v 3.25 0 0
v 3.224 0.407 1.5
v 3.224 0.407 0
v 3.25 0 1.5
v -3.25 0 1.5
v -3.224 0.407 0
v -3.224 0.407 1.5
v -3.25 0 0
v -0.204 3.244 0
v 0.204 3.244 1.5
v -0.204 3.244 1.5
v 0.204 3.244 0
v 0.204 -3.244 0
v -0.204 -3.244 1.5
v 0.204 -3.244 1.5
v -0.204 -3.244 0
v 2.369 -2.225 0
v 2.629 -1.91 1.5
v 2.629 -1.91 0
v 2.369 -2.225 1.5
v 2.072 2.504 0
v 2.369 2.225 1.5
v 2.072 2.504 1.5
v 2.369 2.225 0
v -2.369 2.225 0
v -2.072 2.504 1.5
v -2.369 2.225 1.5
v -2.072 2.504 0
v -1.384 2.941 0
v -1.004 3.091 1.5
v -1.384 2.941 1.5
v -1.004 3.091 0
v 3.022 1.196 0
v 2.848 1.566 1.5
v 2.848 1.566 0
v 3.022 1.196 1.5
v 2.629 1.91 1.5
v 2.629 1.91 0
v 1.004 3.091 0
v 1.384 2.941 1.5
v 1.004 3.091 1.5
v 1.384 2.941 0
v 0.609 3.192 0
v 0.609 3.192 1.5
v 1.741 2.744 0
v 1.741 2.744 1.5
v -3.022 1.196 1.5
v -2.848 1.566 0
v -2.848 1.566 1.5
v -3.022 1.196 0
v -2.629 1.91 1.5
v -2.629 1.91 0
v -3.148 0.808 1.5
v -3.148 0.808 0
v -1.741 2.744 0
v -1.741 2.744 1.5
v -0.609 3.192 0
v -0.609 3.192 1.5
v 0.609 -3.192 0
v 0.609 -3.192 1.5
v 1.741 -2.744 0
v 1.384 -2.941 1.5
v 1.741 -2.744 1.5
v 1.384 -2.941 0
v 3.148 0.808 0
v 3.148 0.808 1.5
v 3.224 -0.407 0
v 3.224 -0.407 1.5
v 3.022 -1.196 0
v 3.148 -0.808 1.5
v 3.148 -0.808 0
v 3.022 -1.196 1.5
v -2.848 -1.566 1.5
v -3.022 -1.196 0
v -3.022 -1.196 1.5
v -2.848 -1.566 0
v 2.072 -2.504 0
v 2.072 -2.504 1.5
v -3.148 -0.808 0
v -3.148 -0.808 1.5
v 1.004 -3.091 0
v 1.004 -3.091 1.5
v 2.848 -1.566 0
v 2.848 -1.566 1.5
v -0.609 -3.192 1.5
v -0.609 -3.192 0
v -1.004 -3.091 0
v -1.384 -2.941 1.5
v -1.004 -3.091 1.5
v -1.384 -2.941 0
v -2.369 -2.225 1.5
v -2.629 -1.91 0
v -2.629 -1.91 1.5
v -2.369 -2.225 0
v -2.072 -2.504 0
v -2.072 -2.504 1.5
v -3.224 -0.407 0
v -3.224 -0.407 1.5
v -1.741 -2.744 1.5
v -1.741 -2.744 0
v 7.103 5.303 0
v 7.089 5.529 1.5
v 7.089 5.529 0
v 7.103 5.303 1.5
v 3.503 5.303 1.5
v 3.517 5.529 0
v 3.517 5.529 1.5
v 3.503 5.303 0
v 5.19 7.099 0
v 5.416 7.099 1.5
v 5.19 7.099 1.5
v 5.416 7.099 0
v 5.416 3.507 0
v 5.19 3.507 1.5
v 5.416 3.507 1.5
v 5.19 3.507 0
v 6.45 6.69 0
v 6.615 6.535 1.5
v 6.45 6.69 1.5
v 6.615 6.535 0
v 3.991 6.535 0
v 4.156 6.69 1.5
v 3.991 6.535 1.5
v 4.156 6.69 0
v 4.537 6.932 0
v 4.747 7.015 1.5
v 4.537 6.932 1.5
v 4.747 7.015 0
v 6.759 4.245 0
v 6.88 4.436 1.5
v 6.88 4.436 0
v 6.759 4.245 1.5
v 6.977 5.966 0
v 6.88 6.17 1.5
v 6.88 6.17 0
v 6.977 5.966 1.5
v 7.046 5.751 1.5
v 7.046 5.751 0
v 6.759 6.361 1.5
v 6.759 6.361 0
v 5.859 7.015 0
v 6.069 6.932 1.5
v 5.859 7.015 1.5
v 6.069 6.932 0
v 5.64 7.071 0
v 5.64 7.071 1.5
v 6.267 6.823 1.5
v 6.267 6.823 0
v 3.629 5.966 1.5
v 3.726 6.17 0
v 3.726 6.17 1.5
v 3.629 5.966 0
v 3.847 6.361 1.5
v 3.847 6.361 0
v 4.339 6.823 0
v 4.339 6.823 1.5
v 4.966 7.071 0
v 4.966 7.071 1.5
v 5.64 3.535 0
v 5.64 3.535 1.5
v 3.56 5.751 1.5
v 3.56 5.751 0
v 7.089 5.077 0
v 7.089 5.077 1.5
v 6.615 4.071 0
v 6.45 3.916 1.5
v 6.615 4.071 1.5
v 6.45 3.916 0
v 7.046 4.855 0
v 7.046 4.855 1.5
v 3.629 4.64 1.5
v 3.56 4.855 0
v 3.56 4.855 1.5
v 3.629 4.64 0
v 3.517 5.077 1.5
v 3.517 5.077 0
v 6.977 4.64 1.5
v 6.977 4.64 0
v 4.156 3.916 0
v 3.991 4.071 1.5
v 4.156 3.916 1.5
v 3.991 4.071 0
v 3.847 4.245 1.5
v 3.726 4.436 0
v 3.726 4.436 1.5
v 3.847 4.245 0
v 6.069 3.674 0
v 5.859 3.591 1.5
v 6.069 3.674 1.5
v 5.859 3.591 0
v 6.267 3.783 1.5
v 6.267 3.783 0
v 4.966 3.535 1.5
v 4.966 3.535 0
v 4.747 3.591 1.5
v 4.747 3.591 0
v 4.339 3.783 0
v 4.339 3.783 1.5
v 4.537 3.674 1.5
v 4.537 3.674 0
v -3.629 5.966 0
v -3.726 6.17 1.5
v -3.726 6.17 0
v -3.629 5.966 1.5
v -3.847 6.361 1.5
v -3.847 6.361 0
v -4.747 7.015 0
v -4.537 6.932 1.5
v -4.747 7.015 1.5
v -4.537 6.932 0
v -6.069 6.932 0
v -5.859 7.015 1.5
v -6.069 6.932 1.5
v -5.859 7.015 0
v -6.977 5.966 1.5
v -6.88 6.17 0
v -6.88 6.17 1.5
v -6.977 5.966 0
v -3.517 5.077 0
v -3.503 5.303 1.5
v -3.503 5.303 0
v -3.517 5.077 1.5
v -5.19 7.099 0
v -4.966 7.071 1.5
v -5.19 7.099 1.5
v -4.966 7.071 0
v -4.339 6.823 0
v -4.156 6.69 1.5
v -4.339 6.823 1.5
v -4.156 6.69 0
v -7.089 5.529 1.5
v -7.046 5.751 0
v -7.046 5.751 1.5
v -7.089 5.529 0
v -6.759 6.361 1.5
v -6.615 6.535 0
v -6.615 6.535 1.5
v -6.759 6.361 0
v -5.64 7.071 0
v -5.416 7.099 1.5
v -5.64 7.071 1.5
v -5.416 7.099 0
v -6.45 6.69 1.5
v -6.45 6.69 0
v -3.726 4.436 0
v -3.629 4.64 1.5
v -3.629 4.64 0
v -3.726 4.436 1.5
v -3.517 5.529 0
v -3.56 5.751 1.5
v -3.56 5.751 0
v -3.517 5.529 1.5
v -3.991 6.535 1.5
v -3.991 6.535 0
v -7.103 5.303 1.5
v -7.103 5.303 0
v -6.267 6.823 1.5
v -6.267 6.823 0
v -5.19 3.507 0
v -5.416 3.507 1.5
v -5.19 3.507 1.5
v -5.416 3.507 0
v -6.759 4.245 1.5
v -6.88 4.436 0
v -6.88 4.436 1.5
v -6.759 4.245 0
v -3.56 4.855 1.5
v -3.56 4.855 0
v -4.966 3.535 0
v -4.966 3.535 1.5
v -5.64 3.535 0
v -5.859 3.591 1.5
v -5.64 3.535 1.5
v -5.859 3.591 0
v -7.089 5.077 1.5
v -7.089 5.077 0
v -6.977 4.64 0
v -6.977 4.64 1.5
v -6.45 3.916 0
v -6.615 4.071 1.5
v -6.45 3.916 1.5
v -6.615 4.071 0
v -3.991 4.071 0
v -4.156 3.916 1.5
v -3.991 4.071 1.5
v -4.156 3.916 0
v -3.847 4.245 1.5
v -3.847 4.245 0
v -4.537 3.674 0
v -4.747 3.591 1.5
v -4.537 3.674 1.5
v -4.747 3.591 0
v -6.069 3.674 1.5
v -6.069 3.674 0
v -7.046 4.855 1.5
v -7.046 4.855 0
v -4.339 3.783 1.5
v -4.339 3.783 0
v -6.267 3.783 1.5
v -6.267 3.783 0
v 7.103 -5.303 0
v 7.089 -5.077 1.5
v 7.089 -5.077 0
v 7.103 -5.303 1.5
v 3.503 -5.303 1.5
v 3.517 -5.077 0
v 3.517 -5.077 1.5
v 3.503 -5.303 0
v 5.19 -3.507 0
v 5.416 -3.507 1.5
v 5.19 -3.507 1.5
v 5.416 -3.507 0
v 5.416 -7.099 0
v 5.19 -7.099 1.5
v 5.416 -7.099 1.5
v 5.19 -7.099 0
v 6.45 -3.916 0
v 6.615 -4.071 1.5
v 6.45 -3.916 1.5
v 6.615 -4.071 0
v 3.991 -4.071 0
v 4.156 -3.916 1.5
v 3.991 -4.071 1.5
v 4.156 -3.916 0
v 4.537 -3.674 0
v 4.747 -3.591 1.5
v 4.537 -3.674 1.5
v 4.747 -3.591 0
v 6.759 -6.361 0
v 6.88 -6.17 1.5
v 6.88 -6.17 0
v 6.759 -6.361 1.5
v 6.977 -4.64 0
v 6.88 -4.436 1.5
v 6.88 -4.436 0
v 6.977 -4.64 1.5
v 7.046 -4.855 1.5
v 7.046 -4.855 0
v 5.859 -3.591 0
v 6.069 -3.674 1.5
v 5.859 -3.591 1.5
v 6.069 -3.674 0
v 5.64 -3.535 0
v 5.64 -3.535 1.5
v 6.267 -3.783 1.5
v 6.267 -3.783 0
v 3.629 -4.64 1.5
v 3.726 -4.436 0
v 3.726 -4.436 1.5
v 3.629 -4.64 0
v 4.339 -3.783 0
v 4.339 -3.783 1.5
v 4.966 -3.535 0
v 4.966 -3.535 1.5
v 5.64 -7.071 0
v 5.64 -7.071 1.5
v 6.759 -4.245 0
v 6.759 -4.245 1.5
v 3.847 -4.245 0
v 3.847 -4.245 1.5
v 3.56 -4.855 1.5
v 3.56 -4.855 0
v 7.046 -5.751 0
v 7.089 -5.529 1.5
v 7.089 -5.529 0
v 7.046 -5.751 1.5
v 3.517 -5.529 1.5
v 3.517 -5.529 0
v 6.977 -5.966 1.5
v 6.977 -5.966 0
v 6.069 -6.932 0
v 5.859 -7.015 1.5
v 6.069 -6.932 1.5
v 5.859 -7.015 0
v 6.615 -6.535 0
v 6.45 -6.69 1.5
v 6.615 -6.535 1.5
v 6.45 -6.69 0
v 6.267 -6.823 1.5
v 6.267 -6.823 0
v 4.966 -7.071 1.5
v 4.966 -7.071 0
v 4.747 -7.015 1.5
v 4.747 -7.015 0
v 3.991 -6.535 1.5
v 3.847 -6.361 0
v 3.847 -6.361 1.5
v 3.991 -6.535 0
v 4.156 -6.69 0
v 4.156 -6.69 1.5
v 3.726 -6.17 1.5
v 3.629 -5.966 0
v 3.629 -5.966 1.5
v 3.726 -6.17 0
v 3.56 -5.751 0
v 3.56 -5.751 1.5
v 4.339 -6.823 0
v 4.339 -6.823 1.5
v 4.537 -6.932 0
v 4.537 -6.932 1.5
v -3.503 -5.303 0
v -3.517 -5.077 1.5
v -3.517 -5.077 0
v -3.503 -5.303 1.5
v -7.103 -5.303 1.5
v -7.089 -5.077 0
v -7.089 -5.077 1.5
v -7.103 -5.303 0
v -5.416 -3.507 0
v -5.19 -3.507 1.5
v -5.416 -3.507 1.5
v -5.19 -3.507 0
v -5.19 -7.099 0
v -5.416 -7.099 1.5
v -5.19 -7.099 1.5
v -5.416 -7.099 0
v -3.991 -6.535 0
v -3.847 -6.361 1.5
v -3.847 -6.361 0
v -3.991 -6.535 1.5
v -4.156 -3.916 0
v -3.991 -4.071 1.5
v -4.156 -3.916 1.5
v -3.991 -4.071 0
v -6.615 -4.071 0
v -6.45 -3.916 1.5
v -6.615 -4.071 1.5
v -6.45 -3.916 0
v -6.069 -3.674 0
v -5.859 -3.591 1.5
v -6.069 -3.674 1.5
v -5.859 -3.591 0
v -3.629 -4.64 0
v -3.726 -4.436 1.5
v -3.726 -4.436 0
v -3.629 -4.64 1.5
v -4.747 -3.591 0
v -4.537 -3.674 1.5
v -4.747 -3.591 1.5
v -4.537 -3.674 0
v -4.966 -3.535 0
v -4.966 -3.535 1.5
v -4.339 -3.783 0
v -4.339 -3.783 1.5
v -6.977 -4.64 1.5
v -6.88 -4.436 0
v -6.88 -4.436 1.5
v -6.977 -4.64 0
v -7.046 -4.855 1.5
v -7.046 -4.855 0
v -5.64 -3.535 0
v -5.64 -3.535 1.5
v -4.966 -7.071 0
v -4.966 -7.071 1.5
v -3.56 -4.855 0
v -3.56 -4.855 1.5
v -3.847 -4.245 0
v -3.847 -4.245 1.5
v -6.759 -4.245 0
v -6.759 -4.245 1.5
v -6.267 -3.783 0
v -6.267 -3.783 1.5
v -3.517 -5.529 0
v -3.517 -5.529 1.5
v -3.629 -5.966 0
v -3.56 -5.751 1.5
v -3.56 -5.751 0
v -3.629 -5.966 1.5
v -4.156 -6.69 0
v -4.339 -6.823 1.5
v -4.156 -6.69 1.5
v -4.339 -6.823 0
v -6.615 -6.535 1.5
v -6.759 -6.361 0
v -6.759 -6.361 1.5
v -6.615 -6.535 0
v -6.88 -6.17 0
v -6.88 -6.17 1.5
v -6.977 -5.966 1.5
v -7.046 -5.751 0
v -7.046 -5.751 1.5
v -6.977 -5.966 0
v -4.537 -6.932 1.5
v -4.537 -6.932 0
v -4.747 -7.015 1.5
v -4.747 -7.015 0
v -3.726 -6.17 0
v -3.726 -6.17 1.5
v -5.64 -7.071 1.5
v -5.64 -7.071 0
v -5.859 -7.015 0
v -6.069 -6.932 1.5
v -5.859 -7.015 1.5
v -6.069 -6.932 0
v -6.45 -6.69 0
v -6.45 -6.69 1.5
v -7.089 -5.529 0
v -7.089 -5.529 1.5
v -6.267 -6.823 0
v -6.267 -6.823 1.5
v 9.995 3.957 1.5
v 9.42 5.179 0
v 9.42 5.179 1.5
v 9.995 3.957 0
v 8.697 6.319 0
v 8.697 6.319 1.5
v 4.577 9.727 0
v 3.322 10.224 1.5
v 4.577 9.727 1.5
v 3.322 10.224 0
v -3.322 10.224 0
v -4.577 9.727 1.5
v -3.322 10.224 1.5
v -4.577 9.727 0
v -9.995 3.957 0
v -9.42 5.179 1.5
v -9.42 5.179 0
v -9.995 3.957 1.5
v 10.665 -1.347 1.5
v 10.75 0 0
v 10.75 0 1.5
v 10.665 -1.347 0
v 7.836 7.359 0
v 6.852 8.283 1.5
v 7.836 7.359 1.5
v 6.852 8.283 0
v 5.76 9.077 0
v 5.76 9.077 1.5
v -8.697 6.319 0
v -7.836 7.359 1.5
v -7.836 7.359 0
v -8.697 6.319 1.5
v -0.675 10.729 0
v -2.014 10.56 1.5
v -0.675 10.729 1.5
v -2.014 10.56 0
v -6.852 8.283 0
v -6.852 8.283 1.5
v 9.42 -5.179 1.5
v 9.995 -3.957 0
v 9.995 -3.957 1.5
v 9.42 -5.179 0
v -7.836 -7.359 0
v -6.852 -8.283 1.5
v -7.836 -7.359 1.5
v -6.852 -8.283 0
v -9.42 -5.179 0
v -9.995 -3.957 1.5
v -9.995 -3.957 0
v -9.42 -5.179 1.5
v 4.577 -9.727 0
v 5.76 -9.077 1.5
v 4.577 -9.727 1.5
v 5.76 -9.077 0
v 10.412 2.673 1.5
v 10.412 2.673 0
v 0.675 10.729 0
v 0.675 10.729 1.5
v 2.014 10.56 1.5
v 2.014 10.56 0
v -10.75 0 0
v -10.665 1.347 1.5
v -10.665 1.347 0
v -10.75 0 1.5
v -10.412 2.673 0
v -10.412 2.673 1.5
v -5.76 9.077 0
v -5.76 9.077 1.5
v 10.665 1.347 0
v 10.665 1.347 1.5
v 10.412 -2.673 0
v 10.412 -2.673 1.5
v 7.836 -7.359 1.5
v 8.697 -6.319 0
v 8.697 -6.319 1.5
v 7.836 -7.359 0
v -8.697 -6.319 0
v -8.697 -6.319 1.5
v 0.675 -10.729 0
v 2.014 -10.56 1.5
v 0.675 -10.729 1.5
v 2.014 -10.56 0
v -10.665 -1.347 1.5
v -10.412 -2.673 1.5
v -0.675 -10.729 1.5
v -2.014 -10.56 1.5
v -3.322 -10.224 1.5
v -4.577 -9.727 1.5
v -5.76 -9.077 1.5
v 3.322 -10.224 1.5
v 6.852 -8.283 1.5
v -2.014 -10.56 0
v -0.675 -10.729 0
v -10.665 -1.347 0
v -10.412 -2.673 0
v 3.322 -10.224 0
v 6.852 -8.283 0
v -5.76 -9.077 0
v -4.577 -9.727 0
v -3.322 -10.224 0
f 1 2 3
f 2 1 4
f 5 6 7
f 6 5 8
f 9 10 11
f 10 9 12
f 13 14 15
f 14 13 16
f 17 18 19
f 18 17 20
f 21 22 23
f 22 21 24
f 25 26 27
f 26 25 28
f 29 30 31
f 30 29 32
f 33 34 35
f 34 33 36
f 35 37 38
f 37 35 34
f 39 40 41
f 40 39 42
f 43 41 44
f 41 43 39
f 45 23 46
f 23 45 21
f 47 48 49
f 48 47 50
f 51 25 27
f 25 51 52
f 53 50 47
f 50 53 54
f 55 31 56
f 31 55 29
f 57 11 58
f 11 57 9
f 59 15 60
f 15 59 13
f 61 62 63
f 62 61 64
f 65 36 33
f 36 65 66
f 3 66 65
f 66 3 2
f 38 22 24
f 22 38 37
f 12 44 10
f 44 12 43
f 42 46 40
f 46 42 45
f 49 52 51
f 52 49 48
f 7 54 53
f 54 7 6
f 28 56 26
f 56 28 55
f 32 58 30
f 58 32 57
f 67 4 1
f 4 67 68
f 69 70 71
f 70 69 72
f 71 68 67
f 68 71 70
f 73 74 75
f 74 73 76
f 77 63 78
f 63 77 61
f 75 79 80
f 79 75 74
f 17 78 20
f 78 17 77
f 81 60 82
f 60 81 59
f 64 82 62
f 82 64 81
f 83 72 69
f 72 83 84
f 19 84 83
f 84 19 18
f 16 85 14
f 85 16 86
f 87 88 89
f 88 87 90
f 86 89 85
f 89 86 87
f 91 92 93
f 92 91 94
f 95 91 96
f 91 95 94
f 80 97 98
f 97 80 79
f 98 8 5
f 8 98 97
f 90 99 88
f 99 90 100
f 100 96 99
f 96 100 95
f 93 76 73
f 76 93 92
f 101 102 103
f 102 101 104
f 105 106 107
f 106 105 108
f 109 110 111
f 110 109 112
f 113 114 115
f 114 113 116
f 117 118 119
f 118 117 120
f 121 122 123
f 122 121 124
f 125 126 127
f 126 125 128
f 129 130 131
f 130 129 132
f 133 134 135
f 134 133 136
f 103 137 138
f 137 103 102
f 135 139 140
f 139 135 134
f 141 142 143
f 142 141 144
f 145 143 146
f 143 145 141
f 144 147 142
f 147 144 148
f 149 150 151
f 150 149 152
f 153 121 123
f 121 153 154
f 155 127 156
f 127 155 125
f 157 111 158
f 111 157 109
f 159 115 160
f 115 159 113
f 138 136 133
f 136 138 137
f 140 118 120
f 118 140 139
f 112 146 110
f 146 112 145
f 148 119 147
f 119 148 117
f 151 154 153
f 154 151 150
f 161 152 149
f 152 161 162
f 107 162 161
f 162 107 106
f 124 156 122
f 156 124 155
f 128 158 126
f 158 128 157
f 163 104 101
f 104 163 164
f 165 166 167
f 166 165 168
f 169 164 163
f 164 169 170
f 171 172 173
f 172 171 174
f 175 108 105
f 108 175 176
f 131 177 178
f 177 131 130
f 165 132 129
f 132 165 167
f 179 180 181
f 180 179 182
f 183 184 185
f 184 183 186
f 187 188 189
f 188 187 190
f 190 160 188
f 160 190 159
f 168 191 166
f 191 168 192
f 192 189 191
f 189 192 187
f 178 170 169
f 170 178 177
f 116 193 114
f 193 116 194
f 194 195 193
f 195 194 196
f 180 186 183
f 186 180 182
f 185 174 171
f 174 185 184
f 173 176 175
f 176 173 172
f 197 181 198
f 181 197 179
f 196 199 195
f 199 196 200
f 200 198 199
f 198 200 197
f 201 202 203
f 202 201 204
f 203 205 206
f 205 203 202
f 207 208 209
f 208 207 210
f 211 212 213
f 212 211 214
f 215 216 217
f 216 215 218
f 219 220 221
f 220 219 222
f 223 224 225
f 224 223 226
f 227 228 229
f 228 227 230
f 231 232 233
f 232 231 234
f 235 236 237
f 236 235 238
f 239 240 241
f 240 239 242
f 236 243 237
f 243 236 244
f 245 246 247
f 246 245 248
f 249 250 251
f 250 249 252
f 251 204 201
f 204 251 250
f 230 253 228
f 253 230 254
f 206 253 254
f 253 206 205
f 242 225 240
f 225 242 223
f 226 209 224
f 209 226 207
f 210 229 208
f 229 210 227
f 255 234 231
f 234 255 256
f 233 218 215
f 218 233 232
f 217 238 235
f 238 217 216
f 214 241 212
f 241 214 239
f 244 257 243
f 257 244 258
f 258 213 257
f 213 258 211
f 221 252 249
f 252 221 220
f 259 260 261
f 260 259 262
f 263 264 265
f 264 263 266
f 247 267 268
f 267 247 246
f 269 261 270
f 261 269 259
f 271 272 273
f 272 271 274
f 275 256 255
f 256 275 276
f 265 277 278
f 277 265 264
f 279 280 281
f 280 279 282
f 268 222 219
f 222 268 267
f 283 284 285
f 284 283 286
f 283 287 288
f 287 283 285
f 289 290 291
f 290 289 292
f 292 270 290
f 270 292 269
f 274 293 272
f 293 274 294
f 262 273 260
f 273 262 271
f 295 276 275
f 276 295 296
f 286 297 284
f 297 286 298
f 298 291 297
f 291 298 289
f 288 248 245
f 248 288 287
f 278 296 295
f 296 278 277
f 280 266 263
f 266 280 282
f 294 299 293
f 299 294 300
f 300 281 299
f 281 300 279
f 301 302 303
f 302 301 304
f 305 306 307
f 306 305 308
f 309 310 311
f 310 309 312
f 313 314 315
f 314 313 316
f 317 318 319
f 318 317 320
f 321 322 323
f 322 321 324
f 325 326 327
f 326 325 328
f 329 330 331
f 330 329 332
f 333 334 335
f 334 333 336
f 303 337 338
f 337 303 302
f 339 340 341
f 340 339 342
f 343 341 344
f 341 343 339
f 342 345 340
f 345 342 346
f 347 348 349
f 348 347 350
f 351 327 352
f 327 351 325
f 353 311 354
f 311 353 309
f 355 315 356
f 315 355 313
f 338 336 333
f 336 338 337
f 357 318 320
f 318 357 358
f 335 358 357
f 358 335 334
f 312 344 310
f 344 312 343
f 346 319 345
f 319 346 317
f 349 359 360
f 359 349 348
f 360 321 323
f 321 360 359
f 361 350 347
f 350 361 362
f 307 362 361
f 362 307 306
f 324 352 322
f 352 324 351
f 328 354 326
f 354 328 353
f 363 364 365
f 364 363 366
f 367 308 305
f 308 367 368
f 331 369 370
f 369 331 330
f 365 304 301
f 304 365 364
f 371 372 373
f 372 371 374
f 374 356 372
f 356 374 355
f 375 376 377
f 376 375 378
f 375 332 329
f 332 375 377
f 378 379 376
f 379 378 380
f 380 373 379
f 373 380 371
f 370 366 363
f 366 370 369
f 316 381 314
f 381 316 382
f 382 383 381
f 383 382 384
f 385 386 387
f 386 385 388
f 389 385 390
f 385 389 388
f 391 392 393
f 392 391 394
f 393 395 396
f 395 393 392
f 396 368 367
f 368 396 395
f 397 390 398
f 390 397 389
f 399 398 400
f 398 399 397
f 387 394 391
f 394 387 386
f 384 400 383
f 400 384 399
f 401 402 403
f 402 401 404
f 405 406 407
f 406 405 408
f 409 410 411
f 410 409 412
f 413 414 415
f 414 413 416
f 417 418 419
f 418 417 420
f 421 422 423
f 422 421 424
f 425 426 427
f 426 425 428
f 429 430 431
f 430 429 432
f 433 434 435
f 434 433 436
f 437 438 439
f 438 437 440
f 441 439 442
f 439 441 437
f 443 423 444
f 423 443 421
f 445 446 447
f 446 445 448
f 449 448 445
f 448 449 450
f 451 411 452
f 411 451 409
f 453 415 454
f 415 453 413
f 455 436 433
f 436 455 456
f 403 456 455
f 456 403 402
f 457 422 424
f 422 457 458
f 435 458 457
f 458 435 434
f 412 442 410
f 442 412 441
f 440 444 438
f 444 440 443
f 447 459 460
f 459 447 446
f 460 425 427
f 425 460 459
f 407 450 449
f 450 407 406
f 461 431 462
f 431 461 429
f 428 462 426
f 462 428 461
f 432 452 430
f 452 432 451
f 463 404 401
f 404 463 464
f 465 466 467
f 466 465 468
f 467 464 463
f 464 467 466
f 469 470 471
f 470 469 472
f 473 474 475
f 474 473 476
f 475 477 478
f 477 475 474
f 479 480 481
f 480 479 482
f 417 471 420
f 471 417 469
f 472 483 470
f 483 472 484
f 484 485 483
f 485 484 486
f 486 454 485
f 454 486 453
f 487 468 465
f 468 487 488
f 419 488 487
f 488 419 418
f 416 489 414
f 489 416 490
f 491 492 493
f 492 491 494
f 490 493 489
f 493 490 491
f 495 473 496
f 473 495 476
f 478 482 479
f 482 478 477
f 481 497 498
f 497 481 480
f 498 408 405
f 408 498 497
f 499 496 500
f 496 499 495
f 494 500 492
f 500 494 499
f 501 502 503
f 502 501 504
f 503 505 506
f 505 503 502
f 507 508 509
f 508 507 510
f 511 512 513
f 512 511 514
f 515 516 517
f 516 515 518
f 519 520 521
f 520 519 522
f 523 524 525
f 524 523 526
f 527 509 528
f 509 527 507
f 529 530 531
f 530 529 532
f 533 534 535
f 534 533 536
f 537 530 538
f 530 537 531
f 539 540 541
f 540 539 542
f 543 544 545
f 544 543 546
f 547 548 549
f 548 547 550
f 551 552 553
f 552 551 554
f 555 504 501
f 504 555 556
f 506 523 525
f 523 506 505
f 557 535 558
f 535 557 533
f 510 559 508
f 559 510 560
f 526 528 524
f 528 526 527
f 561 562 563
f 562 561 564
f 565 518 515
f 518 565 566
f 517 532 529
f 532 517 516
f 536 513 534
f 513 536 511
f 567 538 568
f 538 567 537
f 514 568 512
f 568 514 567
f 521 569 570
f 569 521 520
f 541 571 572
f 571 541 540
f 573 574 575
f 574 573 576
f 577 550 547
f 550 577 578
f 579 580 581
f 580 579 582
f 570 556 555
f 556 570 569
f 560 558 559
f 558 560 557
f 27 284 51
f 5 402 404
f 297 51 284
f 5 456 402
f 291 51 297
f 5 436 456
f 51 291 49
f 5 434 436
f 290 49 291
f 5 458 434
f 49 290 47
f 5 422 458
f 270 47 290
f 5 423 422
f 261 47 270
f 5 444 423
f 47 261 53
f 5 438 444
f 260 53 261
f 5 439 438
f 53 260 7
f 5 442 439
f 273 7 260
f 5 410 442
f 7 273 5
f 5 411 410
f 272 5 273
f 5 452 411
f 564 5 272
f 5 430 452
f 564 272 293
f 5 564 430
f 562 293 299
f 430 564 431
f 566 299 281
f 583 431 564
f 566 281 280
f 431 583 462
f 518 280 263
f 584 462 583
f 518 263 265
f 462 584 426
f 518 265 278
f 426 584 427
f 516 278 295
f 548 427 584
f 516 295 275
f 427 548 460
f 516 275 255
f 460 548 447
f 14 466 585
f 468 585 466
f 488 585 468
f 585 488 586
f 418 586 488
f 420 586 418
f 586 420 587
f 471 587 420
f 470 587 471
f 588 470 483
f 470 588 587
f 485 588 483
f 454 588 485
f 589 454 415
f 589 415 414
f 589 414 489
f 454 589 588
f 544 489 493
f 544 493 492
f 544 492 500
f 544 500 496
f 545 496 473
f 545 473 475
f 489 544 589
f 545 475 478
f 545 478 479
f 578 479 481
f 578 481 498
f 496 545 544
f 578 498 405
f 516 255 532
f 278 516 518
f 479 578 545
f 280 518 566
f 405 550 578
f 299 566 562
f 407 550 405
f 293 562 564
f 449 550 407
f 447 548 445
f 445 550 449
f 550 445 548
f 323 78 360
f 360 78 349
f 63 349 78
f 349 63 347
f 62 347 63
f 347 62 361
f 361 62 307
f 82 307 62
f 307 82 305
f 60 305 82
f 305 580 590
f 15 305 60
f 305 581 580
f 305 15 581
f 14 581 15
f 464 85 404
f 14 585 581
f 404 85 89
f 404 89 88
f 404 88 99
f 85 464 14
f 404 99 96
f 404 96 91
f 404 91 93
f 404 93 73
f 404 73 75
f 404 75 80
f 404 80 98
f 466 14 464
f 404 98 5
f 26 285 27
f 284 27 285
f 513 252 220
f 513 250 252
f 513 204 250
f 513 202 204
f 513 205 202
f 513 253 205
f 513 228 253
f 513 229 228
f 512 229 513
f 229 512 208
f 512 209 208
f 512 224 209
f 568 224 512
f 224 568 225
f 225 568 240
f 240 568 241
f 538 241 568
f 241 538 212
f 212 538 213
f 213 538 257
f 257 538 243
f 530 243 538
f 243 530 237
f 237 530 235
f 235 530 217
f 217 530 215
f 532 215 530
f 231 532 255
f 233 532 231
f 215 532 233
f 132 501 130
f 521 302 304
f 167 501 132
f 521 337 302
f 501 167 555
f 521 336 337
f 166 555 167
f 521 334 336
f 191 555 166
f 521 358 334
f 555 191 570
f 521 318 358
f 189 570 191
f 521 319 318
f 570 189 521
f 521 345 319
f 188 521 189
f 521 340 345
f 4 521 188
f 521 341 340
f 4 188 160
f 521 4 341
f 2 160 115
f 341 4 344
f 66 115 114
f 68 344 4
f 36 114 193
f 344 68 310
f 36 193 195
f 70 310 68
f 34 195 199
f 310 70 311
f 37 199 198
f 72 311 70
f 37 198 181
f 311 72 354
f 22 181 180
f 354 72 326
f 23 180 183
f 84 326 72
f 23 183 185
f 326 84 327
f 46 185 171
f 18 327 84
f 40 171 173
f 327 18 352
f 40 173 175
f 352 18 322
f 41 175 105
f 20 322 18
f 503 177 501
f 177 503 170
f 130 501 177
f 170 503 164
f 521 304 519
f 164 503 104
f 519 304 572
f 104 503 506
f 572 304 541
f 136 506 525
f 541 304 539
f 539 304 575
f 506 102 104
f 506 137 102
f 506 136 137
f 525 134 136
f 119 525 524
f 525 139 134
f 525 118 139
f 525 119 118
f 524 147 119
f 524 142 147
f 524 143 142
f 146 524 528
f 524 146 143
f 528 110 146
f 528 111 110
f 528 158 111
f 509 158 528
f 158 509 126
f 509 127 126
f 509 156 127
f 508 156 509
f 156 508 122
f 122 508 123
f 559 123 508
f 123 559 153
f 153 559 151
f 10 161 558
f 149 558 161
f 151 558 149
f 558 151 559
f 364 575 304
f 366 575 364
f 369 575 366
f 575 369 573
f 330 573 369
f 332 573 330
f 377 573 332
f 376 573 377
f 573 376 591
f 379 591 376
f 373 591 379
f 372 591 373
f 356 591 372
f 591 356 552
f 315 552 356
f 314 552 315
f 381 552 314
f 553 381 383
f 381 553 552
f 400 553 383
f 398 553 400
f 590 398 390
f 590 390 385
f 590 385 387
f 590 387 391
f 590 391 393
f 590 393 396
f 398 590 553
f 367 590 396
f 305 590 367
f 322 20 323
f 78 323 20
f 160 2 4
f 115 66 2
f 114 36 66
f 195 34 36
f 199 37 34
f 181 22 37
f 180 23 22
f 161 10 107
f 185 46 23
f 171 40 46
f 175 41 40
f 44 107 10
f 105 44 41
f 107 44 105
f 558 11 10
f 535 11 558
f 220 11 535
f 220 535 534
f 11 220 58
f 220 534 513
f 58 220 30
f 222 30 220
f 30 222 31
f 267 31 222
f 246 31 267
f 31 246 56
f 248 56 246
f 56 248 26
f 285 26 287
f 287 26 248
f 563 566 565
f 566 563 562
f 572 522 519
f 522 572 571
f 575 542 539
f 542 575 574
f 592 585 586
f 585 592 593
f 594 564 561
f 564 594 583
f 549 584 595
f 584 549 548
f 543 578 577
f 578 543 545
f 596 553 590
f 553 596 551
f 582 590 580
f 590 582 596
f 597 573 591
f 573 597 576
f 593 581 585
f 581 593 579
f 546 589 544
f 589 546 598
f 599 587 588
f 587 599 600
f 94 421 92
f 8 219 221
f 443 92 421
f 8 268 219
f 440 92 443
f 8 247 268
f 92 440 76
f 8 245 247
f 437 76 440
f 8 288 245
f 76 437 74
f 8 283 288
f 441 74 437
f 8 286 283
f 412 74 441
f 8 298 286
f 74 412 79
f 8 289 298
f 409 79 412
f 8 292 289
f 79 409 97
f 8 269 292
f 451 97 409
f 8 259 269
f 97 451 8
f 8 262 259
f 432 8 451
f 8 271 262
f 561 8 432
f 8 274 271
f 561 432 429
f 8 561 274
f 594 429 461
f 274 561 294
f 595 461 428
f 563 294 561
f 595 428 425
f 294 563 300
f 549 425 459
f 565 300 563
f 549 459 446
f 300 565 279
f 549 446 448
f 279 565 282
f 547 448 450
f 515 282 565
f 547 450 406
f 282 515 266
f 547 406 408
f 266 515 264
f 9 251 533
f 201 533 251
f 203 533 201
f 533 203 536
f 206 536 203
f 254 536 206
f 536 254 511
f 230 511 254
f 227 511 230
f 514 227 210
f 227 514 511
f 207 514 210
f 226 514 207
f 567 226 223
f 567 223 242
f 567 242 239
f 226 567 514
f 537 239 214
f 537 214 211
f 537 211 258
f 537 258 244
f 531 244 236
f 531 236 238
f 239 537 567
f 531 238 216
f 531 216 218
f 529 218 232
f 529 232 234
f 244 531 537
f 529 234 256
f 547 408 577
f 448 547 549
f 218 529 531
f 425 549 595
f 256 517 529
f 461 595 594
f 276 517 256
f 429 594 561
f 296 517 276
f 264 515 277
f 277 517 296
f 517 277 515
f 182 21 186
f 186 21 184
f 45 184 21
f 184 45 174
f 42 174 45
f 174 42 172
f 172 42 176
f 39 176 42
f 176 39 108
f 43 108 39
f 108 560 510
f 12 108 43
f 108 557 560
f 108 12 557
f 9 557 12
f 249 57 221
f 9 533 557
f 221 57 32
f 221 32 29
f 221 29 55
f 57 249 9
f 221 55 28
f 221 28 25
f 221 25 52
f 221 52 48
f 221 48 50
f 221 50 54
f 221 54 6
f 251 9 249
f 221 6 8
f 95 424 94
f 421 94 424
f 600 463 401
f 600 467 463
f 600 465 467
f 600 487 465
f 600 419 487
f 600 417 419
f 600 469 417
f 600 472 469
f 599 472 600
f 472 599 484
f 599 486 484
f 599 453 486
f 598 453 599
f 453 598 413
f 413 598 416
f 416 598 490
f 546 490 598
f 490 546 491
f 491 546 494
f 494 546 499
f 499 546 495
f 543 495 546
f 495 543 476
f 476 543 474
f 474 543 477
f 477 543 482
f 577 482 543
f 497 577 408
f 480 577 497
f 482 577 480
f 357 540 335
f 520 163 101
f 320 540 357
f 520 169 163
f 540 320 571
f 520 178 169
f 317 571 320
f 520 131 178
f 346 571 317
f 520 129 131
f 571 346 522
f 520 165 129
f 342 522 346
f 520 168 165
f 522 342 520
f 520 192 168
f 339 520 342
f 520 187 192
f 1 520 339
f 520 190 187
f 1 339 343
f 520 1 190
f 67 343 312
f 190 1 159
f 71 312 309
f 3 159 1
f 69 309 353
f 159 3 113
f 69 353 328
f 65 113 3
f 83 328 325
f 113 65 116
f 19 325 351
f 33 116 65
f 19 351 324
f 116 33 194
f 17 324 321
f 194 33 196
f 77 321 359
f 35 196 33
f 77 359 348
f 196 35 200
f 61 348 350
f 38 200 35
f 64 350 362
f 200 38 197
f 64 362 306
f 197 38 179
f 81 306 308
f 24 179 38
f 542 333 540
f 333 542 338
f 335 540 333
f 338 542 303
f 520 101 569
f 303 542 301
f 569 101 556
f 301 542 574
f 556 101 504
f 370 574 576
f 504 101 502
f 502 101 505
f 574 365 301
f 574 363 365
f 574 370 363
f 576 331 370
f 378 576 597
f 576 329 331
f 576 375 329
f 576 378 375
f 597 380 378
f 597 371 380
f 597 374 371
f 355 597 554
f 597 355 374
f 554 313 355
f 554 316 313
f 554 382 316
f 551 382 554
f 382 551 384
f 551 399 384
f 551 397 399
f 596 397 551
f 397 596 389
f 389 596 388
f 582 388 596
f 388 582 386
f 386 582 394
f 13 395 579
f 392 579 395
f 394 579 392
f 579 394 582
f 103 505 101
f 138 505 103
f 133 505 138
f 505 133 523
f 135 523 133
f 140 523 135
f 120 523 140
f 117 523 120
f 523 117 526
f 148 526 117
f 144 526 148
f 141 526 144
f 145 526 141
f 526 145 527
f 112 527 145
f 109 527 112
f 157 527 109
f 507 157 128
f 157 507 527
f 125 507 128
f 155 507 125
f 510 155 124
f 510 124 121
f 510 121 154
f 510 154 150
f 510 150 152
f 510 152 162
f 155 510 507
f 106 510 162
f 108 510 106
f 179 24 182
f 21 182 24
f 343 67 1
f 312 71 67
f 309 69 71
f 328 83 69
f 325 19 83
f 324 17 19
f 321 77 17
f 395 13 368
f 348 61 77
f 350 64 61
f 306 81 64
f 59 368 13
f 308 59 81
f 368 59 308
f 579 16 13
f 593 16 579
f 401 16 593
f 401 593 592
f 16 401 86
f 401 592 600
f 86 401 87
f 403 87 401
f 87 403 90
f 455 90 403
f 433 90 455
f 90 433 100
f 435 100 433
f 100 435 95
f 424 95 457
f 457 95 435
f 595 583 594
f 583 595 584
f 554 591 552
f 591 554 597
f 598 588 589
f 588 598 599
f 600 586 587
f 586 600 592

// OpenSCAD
$fn = 50;


difference() {
	union() {
		*color(alpha = 1.0000000000, c = "gray") {
			translate(v = [0, 7, 0]) {
				linear_extrude(height = 1) {
					text(font = "Arial:style=Bold", halign = "center", size = 4.5000000000, text = "COMMENT circle main", valign = "center");
				}
			}
		}
		cylinder(h = 1.5000000000, r = 10.7500000000);
	}
	union() {
		*color(alpha = 1.0000000000, c = "gray") {
			translate(v = [0, 7, 0]) {
				linear_extrude(height = 1) {
					text(font = "Arial:style=Bold", halign = "center", size = 4.5000000000, text = "COMMENT holes main", valign = "center");
				}
			}
		}
		translate(v = [0.0000000000, 0.0000000000, -50.0000000000]) {
			cylinder(h = 100, r = 3.2500000000);
		}
		translate(v = [0.0000000000, 0.0000000000, -50.0000000000]) {
			cylinder(h = 100, r = 3.2500000000);
		}
		translate(v = [0.0000000000, 0.0000000000, -50.0000000000]) {
			cylinder(h = 100, r = 3.2500000000);
		}
		translate(v = [0.0000000000, 0.0000000000, -50.0000000000]) {
			cylinder(h = 100, r = 1.8000000000);
		}
		translate(v = [0.0000000000, 0.0000000000, -50.0000000000]) {
			cylinder(h = 100, r = 1.8000000000);
		}
		translate(v = [0.0000000000, 0.0000000000, -50.0000000000]) {
			cylinder(h = 100, r = 1.8000000000);
		}
		#translate(v = [5.3030000000, 5.3030000000, -50.0000000000]) {
			cylinder(h = 100, r = 1.8000000000);
		}
		#translate(v = [-5.3030000000, 5.3030000000, -50.0000000000]) {
			cylinder(h = 100, r = 1.8000000000);
		}
		#translate(v = [5.3030000000, -5.3030000000, -50.0000000000]) {
			cylinder(h = 100, r = 1.8000000000);
		}
		#translate(v = [-5.3030000000, -5.3030000000, -50.0000000000]) {
			cylinder(h = 100, r = 1.8000000000);
		}
	}
}
